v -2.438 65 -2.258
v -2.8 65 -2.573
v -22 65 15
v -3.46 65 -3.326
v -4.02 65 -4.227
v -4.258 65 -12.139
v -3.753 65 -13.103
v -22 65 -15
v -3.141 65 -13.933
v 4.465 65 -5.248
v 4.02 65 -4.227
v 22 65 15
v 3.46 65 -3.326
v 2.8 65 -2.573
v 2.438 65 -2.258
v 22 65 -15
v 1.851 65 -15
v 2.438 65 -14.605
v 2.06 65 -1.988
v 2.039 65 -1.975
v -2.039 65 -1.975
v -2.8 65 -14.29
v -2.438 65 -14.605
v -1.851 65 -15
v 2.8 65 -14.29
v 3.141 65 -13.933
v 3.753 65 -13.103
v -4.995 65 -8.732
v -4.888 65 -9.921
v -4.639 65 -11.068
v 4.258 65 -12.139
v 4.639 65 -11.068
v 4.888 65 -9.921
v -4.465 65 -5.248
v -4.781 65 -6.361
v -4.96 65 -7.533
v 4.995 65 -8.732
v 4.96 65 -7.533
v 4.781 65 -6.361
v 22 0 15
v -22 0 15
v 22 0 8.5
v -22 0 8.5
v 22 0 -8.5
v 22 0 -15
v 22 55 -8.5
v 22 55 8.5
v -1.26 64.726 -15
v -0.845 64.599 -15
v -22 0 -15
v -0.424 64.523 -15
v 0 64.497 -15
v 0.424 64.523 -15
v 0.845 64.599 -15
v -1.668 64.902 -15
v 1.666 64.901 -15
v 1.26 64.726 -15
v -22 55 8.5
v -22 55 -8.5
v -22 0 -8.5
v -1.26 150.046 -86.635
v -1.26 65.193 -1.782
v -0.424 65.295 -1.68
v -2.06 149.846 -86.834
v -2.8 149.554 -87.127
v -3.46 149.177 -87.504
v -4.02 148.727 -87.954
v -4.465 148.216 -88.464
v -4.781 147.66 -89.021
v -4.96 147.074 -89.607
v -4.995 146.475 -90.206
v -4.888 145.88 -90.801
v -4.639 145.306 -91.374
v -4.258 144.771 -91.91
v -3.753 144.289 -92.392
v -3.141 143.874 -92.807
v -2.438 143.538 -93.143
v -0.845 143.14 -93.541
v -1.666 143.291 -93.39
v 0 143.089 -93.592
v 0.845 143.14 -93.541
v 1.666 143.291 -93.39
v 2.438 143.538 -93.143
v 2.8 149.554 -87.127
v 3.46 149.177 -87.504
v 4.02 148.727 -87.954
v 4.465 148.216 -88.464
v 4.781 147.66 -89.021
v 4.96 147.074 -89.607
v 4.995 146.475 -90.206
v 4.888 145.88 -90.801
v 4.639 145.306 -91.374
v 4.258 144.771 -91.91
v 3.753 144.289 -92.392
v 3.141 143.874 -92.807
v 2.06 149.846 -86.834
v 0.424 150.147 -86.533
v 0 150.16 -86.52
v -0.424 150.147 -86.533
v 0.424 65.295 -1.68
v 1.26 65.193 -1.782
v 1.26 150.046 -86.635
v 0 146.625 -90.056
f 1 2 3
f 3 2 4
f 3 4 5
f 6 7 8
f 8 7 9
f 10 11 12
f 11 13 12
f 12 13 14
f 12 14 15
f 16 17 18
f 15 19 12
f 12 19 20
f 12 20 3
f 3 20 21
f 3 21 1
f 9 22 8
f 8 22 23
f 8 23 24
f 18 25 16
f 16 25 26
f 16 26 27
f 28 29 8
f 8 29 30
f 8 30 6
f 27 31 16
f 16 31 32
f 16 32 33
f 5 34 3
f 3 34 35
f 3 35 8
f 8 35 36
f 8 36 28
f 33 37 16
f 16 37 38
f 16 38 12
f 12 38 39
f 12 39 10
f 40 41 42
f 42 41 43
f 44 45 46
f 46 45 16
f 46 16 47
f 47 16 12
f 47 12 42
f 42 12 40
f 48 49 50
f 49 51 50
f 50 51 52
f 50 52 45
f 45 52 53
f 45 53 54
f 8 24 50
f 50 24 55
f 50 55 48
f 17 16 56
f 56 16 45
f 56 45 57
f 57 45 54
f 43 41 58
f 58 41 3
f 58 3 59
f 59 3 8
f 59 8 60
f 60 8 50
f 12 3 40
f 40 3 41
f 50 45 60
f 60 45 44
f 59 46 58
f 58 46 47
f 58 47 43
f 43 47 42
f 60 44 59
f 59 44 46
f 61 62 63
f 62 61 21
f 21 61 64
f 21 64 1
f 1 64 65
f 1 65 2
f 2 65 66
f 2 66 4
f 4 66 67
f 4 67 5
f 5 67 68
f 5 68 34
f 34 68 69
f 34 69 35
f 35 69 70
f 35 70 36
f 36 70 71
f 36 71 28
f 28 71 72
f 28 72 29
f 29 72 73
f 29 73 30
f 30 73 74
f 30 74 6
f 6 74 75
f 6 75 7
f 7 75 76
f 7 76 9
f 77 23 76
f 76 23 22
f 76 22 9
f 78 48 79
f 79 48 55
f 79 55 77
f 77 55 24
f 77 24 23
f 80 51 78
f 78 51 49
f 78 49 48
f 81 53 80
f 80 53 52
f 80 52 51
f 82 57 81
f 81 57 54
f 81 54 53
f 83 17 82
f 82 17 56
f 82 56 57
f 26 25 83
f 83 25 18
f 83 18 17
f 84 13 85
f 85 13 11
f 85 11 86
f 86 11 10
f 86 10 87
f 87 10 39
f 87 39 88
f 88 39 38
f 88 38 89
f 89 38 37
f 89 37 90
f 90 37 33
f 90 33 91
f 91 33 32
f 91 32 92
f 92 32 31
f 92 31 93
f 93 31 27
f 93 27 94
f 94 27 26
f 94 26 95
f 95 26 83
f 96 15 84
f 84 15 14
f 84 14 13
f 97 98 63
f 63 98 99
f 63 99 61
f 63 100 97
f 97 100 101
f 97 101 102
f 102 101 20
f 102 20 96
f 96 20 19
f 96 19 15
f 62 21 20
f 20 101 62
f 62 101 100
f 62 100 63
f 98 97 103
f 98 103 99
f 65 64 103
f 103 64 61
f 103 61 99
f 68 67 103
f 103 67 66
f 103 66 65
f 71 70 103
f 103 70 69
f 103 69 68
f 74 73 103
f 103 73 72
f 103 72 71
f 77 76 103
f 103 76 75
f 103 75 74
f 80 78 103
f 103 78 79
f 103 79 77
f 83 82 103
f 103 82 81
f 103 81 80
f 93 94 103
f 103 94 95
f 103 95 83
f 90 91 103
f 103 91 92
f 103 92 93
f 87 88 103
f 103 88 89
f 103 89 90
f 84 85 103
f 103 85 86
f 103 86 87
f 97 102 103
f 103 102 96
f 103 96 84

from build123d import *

# Parameters (mm, degrees)
SKETCH1_W               = 44
SKETCH1_H               = 30
BOSS_EXTRUDE1_DEPTH     = 65
CUT_EXTRUDE1_DEPTH      = 80.912452096
CUT_EXTRUDE1_DEPTH_BACK = 80.912452096
SKETCH2_W               = 17
SKETCH2_H               = 55
SKETCH3_R               = 5
BOSS_EXTRUDE2_DEPTH     = 120
SKETCH3_2_R             = 5
BOSS_EXTRUDE3_DEPTH     = 120


with BuildPart() as part:
    # Sketch1 → Boss-Extrude1 (new body)
    with BuildSketch(Plane(origin=(0, 0, 0), x_dir=(1, 0, 0), z_dir=(0, 1, 0))):
        Rectangle(SKETCH1_W, SKETCH1_H)
    extrude(amount=BOSS_EXTRUDE1_DEPTH)

    # Sketch2 → Cut-Extrude1 (cut, two sides: drawn at the far end of the back side and taken through both)
    with BuildSketch(Plane(origin=(22, 0, 0), x_dir=(0, 0, -1), z_dir=(1, 0, 0)).offset(-CUT_EXTRUDE1_DEPTH_BACK)):
        with Locations((0, 27.5)):
            Rectangle(SKETCH2_W, SKETCH2_H)
    extrude(amount=CUT_EXTRUDE1_DEPTH + CUT_EXTRUDE1_DEPTH_BACK, mode=Mode.SUBTRACT)

    # Sketch3 → Boss-Extrude2 (add)
    with BuildSketch(Plane(origin=(0, 33.487457391, -33.487457391), x_dir=(8.429181601007666e-15, -0.7071067811865441, -0.707106781186551), z_dir=(-8.648297214624002e-15, 0.707106781186551, -0.7071067811865441))):
        with Locations((-40, 0)):
            Circle(SKETCH3_R)
    extrude(amount=BOSS_EXTRUDE2_DEPTH)

    # Sketch3<2> → Boss-Extrude3 (add)
    with BuildSketch(Plane(origin=(0, 33.487457391, -33.487457391), x_dir=(8.429181601007666e-15, -0.7071067811865441, -0.707106781186551), z_dir=(-8.648297214624002e-15, 0.707106781186551, -0.7071067811865441))):
        with Locations((-40, 0)):
            Circle(SKETCH3_2_R)
    extrude(amount=BOSS_EXTRUDE3_DEPTH)


solid = part.part
